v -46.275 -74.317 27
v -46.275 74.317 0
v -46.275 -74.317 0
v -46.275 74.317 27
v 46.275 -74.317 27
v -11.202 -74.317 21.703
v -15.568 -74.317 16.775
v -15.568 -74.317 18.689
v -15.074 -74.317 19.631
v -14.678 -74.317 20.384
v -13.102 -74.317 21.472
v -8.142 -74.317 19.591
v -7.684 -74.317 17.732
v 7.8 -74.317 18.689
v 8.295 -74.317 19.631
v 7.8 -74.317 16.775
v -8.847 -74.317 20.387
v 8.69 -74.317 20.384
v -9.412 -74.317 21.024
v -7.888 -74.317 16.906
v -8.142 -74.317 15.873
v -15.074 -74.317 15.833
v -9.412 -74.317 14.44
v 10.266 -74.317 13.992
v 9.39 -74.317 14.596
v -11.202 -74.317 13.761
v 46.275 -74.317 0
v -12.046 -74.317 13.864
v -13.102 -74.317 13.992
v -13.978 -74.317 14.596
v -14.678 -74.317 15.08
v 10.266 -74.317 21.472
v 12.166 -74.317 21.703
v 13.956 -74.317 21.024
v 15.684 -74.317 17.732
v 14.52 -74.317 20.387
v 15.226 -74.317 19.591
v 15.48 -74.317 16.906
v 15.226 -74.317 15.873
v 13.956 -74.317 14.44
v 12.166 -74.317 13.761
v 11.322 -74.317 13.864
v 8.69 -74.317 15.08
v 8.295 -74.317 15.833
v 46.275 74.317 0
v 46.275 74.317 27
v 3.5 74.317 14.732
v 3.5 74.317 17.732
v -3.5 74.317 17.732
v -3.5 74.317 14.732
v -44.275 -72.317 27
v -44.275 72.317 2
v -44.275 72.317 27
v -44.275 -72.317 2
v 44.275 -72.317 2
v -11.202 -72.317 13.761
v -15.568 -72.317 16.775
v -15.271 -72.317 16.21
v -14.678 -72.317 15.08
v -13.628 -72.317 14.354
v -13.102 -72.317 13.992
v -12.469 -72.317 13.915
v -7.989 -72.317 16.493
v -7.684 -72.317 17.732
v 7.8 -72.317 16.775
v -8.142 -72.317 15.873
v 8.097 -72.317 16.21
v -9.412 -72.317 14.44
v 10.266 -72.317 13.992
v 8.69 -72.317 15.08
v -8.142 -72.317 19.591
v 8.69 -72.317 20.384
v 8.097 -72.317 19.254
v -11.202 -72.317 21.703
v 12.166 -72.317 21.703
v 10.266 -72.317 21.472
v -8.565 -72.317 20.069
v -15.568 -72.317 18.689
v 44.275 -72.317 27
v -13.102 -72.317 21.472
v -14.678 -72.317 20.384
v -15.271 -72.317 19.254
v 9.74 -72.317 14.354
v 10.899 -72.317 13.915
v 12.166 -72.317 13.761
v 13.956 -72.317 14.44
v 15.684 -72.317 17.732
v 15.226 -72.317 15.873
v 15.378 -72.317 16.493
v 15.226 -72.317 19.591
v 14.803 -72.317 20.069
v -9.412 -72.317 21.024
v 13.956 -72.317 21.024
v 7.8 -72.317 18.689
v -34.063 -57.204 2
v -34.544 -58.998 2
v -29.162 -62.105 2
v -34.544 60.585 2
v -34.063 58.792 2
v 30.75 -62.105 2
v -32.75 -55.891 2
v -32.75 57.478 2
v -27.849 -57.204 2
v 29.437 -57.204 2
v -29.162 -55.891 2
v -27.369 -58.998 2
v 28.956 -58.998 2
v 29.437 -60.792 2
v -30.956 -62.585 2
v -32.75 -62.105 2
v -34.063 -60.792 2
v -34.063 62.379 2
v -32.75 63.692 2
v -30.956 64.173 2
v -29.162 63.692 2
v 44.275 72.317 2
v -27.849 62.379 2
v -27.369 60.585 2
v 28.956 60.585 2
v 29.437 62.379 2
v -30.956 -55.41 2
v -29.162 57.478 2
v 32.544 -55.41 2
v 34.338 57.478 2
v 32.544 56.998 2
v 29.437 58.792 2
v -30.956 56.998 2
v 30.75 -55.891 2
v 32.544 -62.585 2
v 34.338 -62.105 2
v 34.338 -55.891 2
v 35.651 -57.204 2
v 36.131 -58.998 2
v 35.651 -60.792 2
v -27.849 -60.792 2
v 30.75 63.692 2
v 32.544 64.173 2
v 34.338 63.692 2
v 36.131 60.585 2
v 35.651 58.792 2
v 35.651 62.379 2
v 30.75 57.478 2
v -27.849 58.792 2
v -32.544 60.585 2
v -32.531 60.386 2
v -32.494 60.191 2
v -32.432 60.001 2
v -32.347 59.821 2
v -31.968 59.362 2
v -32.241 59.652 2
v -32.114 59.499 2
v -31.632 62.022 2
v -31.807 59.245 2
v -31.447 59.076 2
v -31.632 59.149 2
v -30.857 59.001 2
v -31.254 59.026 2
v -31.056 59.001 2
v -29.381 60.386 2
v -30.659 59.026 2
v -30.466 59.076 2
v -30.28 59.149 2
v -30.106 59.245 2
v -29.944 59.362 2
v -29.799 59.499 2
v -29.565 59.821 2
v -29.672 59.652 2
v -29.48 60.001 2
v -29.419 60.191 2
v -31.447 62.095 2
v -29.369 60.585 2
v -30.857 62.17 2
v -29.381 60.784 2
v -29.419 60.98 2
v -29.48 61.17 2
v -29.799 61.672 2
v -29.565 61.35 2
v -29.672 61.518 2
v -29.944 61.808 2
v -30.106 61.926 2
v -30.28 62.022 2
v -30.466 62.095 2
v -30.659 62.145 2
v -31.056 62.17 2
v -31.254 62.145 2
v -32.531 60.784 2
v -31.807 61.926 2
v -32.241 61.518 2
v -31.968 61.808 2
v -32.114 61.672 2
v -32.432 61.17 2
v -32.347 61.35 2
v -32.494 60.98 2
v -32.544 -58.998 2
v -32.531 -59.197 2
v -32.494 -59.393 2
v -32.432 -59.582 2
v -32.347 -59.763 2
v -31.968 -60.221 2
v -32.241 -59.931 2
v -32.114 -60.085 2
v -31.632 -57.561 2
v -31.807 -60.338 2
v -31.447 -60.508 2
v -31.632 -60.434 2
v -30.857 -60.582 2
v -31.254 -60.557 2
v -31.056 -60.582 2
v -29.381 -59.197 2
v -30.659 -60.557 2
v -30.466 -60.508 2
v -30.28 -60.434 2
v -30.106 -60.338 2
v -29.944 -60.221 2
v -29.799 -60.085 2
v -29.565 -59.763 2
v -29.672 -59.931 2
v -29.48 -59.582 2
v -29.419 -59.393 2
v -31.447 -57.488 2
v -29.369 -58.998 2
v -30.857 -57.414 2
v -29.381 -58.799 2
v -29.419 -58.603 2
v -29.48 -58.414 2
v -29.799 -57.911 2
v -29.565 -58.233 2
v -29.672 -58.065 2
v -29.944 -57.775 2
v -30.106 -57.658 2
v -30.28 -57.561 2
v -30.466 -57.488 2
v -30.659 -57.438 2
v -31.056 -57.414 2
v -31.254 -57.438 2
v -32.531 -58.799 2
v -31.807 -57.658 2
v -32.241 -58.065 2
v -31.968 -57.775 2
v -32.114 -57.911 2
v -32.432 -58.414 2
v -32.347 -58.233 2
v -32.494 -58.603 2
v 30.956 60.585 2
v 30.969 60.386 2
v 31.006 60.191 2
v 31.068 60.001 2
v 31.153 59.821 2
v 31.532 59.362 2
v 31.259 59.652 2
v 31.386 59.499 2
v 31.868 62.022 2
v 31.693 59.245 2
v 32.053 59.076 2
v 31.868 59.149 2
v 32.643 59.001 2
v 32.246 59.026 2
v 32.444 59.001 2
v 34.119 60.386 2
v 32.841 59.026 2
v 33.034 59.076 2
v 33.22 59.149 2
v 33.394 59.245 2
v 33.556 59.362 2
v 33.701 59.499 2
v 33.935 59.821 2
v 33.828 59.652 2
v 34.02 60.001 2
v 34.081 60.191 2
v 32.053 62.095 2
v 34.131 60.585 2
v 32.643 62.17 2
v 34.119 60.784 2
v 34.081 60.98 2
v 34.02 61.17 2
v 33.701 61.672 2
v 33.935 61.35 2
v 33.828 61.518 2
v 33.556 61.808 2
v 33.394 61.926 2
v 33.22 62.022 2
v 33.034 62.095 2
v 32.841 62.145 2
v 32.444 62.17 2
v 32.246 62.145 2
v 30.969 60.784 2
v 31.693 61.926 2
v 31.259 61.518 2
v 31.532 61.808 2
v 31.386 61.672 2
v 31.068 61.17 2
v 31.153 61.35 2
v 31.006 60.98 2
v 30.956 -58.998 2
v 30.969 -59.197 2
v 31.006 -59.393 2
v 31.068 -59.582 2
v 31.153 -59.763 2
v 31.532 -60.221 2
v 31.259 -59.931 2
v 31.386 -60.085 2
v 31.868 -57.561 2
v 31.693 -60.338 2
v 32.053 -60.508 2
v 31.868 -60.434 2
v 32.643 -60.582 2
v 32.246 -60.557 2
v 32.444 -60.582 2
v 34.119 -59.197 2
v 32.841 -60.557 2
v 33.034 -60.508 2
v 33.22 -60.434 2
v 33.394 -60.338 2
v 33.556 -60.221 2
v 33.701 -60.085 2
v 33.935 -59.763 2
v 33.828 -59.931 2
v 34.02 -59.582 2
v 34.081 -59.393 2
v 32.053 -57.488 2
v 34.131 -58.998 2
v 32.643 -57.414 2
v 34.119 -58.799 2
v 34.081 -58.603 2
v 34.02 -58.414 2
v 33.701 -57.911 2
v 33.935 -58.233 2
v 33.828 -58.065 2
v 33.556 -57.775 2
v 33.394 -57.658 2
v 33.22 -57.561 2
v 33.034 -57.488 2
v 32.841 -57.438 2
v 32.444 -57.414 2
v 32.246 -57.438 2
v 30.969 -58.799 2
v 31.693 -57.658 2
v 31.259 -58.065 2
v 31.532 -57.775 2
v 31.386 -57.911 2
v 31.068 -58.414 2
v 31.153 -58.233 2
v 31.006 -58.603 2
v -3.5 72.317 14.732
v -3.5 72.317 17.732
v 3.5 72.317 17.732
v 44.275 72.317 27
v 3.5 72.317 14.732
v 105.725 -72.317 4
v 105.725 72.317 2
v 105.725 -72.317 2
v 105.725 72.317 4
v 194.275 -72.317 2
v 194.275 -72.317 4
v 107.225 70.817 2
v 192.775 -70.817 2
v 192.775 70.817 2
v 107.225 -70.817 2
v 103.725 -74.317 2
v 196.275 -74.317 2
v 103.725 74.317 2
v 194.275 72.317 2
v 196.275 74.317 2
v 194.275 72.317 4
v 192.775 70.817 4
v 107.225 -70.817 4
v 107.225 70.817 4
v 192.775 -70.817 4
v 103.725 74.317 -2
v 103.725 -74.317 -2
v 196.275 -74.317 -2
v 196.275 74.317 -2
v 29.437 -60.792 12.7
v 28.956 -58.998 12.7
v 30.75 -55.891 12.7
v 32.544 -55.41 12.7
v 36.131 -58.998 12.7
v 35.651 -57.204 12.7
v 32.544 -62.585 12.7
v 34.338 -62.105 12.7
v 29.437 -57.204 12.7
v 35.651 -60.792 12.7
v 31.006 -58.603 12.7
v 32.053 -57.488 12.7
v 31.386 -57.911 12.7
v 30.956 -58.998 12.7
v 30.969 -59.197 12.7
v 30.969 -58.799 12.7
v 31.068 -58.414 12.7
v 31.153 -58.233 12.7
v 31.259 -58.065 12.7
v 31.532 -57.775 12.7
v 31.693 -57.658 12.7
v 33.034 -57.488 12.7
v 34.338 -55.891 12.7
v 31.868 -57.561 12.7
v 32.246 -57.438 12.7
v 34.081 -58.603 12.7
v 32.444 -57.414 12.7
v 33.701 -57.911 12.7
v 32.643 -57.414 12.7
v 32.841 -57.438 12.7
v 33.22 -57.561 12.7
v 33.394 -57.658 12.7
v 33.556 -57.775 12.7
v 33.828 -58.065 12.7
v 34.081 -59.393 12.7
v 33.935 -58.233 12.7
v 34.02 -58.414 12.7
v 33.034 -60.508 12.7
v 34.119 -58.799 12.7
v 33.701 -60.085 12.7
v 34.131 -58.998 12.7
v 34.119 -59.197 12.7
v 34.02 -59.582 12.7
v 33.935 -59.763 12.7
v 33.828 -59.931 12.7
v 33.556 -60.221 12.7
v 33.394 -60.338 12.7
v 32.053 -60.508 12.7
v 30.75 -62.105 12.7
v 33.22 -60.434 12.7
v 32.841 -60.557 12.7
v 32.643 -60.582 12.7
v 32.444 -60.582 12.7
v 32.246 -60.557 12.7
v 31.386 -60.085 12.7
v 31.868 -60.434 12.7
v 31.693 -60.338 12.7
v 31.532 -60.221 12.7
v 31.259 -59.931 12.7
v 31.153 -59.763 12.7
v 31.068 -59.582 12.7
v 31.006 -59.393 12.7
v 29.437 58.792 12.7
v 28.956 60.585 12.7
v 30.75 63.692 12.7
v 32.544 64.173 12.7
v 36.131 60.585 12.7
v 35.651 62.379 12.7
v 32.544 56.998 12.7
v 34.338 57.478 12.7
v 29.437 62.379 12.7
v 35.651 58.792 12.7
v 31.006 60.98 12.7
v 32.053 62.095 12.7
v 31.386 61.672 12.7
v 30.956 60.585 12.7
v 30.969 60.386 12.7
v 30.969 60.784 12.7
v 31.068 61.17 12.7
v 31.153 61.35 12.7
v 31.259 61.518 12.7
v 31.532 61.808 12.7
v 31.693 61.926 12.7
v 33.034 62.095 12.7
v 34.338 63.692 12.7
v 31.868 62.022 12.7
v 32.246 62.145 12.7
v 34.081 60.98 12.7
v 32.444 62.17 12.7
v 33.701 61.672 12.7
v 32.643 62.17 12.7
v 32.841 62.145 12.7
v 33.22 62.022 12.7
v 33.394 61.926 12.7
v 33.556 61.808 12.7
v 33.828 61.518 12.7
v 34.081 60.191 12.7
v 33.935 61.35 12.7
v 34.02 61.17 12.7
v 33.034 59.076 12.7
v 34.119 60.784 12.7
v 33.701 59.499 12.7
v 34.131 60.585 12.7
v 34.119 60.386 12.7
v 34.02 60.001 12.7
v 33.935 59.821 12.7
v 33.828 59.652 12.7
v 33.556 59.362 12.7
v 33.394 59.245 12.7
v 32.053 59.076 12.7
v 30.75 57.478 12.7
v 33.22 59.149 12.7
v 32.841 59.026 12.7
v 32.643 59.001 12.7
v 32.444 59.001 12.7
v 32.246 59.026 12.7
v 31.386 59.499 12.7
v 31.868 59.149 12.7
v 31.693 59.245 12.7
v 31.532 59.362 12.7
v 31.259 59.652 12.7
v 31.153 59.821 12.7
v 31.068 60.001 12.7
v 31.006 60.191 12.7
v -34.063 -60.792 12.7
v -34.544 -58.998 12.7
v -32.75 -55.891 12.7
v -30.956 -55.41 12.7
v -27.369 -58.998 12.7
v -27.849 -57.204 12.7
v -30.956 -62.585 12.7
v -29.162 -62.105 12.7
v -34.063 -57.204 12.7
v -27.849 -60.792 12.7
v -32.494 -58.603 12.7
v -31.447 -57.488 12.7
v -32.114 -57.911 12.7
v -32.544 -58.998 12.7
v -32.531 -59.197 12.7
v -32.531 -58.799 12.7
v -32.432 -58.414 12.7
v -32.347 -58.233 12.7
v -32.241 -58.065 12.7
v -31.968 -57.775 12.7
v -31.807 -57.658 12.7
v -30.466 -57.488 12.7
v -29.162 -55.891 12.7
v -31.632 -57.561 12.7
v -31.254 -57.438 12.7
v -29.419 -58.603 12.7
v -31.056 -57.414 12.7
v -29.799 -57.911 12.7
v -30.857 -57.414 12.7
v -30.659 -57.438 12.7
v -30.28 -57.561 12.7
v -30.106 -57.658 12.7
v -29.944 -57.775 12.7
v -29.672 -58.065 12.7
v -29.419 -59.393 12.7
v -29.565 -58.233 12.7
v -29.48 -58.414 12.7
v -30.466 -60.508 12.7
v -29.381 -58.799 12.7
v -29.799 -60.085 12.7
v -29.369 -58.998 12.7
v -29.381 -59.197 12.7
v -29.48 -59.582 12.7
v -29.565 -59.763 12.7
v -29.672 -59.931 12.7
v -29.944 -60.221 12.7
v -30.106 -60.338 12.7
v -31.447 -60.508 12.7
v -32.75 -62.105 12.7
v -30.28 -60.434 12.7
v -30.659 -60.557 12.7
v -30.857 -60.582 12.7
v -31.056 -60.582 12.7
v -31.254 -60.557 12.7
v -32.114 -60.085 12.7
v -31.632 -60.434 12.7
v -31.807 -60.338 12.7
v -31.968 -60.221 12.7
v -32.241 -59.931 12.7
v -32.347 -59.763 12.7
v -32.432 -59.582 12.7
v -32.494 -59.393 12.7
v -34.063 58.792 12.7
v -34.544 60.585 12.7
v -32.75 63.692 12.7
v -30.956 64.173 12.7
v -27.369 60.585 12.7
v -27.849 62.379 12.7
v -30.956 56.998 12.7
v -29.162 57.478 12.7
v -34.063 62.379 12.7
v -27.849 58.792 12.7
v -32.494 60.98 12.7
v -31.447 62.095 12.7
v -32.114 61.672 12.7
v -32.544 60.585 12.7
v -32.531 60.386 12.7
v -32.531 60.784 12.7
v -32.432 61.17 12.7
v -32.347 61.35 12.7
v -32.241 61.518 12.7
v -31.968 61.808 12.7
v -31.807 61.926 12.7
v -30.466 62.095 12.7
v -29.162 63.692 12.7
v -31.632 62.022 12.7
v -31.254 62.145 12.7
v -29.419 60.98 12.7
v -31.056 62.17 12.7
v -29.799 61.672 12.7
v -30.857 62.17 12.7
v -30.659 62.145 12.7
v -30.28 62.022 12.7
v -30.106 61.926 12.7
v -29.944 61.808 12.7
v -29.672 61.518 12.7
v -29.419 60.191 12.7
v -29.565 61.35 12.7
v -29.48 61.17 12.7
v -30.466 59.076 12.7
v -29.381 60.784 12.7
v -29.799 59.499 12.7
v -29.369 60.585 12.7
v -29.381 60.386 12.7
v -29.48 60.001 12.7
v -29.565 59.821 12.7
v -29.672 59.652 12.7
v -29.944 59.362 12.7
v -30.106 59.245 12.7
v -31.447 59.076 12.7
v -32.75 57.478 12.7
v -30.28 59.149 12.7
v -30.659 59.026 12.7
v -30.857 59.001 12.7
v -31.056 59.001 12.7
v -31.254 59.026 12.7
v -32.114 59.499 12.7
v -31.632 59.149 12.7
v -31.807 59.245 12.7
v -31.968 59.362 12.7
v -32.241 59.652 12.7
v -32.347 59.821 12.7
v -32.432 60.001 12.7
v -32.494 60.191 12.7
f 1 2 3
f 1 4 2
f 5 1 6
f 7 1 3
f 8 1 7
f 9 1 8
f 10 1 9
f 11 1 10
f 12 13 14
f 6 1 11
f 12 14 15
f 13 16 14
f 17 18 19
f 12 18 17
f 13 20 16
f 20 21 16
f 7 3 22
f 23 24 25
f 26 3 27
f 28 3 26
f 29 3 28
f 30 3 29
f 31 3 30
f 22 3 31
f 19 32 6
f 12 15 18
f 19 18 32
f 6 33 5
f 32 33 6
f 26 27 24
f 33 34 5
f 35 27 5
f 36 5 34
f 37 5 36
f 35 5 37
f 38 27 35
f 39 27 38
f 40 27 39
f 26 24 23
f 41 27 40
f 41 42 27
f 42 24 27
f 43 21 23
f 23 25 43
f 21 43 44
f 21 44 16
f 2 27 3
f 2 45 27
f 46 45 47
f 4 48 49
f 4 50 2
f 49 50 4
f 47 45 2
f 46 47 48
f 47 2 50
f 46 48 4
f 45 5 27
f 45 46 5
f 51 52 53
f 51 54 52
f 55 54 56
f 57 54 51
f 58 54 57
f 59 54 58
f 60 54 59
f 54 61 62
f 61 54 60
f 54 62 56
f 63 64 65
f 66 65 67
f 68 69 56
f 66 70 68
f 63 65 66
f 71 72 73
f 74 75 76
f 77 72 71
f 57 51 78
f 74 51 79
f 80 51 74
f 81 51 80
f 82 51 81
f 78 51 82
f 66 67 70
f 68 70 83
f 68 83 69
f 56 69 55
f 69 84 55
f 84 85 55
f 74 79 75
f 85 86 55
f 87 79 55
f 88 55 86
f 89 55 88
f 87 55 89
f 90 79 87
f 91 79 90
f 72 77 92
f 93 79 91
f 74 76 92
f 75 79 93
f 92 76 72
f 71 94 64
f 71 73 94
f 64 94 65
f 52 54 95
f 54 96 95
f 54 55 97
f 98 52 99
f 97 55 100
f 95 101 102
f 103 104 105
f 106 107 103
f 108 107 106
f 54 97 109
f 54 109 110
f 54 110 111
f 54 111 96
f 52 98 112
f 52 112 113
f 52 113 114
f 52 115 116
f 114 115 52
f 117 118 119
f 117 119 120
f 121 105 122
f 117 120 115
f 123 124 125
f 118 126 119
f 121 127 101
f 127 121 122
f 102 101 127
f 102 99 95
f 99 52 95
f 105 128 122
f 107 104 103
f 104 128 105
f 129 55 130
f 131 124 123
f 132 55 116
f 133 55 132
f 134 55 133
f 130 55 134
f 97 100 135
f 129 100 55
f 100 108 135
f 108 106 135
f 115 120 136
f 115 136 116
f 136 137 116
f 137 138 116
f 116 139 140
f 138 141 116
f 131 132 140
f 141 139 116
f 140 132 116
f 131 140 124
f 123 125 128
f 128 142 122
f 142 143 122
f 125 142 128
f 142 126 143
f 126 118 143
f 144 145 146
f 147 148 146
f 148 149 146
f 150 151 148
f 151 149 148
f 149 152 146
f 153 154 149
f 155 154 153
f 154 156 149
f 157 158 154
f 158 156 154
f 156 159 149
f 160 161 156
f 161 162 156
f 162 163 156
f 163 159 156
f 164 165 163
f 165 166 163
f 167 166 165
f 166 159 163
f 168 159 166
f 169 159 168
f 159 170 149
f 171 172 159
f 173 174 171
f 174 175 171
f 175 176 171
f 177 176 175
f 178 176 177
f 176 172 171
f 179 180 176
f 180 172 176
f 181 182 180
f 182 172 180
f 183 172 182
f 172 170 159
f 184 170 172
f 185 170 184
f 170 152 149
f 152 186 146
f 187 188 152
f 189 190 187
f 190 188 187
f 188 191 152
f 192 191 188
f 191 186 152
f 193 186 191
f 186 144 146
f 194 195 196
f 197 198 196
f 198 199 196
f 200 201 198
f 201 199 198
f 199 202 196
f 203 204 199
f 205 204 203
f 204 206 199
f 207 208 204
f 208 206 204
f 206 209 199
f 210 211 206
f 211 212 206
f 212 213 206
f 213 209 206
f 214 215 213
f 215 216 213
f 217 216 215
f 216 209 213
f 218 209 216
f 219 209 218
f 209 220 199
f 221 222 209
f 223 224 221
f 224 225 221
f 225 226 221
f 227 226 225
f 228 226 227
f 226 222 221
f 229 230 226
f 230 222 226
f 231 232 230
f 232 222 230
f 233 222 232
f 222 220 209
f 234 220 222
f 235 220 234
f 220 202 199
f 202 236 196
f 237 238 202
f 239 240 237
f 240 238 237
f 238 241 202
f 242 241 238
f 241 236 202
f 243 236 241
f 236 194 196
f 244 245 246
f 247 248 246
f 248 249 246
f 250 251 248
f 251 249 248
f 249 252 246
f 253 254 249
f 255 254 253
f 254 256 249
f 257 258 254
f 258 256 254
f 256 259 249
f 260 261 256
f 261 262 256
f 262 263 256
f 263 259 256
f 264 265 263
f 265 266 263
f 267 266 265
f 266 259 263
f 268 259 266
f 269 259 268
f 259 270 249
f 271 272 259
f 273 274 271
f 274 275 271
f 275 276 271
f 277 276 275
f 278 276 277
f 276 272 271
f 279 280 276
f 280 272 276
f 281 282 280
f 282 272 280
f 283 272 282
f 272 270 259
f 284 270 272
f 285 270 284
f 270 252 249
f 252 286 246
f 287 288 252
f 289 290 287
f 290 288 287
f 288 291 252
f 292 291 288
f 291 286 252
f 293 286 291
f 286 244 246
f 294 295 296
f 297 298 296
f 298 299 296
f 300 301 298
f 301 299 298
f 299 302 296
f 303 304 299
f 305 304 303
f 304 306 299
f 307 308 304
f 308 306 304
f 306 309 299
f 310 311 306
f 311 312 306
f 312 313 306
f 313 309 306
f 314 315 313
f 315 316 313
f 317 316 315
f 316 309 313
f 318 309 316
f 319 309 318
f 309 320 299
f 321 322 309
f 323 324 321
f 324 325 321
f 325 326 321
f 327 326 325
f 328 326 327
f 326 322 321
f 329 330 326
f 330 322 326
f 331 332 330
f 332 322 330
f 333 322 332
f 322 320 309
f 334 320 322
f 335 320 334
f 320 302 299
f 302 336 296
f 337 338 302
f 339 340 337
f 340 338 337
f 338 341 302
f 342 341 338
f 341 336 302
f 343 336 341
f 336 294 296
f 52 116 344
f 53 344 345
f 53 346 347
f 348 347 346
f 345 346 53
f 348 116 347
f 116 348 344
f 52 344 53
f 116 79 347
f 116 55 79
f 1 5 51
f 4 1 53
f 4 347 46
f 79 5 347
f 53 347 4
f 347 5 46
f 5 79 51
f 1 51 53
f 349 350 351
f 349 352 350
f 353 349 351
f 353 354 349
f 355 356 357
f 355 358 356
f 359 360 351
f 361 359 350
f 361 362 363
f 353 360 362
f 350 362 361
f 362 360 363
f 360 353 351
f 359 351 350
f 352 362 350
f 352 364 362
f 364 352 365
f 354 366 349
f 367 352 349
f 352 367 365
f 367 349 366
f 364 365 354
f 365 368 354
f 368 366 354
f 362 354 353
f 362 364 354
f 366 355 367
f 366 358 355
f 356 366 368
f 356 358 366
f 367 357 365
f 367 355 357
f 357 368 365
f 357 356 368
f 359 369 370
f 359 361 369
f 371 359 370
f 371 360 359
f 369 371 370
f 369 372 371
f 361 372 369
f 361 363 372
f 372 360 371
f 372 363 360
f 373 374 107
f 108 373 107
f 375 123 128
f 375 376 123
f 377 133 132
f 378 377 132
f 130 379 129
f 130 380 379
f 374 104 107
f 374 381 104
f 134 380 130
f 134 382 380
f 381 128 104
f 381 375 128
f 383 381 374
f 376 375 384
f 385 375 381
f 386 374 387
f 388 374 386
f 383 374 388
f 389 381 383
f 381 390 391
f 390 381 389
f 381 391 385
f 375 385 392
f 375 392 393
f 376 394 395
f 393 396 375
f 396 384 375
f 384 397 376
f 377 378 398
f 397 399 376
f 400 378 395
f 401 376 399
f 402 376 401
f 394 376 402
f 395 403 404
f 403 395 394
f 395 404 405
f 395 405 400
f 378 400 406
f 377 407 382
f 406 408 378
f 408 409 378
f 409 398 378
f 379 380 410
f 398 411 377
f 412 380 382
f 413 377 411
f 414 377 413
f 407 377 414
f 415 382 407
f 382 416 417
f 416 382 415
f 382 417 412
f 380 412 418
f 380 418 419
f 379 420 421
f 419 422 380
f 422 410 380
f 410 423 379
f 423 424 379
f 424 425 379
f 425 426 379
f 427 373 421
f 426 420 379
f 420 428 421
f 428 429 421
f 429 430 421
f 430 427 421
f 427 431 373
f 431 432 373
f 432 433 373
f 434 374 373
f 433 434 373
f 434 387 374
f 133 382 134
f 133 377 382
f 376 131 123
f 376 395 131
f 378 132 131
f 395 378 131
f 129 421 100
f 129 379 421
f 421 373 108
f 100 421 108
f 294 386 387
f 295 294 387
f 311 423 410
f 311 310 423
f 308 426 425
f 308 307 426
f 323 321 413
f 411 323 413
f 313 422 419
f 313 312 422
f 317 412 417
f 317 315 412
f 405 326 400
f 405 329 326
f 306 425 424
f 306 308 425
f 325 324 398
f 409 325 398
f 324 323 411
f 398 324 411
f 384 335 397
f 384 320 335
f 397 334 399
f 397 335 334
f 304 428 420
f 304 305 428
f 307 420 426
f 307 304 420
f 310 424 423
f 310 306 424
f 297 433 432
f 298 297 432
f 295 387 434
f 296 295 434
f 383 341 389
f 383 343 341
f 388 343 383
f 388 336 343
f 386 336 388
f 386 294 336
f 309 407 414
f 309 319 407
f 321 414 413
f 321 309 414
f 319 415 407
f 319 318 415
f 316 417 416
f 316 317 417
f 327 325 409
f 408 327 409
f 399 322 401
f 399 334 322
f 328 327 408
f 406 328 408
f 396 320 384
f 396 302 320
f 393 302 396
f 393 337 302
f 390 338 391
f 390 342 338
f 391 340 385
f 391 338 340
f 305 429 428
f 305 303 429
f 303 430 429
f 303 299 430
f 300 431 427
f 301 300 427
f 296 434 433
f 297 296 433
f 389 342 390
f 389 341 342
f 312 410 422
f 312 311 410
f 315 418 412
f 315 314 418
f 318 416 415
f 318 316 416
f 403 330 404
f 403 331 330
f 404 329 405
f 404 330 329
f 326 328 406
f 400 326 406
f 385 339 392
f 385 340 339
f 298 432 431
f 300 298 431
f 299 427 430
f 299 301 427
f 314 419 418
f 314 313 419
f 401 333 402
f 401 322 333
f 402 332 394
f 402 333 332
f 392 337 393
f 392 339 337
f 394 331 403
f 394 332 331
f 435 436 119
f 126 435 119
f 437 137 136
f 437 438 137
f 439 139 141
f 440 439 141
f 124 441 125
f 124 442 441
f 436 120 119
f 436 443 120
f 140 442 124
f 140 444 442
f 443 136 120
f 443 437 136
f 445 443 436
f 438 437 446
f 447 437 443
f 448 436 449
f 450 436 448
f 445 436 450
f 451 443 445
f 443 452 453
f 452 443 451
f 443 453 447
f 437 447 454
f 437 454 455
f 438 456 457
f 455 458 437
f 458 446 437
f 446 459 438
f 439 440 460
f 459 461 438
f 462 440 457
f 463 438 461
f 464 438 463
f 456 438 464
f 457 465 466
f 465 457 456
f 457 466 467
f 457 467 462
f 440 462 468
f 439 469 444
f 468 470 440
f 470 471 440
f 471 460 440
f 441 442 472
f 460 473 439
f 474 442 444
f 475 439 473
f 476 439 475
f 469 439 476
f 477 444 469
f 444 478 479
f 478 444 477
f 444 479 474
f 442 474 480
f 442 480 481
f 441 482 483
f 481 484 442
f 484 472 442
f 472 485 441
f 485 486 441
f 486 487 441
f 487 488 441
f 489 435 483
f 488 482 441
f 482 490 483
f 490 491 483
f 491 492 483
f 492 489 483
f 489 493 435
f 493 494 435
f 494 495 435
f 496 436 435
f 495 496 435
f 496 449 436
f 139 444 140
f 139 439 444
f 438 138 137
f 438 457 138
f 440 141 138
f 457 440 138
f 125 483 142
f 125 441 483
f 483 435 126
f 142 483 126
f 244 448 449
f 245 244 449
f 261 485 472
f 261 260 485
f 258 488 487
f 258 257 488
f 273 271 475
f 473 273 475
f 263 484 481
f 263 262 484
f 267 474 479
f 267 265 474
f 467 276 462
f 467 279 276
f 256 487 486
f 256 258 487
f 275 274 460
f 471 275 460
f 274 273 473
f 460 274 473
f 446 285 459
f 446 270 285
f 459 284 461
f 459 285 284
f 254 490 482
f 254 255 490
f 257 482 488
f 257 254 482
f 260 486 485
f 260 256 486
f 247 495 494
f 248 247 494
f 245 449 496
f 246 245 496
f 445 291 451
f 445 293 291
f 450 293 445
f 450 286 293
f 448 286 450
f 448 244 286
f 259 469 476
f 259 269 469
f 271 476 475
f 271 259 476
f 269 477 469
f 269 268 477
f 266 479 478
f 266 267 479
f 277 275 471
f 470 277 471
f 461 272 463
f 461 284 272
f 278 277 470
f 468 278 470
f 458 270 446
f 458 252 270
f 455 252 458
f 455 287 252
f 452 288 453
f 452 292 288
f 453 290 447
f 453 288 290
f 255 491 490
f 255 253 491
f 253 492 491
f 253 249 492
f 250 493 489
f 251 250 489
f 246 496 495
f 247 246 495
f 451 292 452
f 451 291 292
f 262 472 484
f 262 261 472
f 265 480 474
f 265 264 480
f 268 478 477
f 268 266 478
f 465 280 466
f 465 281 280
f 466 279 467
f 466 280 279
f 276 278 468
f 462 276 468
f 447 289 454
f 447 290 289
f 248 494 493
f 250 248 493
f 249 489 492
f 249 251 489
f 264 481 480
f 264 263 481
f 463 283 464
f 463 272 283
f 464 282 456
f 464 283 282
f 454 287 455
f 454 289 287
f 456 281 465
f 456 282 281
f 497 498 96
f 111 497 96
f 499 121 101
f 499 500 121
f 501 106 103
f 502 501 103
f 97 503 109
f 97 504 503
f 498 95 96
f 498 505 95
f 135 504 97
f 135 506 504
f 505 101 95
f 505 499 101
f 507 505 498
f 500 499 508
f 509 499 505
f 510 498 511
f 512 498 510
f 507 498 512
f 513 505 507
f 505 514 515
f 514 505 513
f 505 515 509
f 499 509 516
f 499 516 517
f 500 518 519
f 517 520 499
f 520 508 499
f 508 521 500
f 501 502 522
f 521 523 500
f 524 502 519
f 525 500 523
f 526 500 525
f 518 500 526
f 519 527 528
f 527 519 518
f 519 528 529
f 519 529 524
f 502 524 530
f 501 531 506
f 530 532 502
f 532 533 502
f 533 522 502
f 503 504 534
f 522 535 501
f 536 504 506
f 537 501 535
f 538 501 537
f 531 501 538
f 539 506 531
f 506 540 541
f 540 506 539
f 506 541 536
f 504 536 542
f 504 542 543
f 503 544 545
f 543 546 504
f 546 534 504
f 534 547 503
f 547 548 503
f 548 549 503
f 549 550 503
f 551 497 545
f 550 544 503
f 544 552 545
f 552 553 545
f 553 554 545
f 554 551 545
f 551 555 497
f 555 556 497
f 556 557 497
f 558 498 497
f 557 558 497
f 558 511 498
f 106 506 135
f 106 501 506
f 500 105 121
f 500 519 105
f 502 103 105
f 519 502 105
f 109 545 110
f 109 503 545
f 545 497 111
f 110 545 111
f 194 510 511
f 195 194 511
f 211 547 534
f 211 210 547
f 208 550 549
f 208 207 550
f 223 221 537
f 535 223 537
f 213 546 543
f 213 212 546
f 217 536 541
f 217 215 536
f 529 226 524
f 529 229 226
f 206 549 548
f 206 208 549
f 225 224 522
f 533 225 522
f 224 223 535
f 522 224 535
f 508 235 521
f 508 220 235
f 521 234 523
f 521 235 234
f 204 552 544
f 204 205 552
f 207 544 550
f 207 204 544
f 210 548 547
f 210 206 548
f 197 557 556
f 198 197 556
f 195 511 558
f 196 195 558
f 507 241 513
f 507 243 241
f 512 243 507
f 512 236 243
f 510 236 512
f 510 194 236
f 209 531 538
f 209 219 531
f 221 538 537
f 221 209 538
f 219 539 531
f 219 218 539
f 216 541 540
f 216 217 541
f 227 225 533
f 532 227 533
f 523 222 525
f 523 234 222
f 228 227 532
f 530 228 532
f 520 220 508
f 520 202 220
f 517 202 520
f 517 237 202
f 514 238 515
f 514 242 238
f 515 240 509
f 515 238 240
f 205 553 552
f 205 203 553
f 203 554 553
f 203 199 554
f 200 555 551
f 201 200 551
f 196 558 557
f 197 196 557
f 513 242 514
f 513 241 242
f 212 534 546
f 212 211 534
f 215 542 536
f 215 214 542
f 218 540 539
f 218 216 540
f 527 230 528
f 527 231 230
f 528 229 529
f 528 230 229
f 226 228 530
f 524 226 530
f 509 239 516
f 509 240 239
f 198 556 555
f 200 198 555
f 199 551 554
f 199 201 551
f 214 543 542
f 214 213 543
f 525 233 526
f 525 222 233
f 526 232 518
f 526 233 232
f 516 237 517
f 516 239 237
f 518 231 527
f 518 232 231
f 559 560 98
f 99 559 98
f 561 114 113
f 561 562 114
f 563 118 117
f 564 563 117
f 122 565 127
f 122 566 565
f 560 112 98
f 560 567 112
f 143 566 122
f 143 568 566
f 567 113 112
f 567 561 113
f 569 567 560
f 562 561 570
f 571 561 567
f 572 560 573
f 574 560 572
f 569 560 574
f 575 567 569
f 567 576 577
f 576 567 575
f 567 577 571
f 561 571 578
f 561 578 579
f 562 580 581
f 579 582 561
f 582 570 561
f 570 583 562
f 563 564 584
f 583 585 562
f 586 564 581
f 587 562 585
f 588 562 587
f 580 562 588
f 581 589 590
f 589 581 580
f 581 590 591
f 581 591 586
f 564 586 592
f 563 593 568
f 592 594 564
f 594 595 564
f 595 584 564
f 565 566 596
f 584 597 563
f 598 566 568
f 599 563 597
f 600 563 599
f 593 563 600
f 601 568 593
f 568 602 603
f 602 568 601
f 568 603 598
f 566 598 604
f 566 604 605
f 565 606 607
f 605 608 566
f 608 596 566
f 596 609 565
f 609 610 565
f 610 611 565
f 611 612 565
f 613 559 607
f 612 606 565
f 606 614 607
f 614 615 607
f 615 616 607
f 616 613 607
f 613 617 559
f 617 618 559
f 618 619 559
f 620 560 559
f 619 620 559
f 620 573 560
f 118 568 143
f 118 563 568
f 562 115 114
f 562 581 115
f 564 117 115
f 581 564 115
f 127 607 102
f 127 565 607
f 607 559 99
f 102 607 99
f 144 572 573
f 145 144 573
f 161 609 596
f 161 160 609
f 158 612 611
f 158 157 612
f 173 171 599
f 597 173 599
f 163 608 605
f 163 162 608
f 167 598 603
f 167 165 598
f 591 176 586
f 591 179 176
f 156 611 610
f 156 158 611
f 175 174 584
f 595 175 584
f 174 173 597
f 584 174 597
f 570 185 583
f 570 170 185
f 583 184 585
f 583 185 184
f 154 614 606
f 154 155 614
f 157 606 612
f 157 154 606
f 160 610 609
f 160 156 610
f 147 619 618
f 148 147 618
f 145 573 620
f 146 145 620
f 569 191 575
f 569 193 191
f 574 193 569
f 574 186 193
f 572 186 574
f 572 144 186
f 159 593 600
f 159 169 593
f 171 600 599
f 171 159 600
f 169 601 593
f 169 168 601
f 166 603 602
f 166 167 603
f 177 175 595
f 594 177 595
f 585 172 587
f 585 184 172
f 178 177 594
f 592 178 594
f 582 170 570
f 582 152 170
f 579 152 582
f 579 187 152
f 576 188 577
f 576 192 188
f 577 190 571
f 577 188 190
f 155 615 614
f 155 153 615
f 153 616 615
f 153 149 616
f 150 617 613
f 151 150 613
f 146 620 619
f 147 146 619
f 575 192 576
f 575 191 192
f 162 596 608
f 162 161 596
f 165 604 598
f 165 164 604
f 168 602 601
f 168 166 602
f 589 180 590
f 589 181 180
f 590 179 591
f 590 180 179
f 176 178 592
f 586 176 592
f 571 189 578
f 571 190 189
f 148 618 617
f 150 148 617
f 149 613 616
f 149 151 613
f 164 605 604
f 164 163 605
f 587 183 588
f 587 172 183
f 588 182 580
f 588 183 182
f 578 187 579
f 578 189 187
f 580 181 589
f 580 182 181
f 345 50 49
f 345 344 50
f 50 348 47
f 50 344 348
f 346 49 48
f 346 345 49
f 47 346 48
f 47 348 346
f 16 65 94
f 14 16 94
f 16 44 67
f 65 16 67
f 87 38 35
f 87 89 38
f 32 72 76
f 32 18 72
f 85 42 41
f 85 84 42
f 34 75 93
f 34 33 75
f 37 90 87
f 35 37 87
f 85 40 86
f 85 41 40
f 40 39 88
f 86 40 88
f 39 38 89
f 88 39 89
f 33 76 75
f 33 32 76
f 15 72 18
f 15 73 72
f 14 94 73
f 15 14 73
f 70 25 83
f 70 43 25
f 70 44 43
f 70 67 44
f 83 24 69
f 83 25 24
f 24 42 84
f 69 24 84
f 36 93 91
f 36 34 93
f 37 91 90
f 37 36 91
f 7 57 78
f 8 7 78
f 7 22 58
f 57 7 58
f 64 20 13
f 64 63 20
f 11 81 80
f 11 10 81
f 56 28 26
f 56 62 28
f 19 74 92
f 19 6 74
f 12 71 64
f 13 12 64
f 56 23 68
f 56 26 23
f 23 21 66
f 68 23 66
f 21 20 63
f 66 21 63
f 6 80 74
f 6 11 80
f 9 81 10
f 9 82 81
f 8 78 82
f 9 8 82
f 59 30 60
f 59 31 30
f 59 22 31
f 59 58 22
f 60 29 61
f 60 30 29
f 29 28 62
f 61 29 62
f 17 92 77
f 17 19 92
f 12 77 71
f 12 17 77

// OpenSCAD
board_w=3*25.4;
board_l=5.208*25.4;
hole_corner=.25*25.4;
mounthole=(.125 * 25.4 / 2);
standoff_height=.5*25.4;
board_height=.08*25.4;
connector_height = standoff_height + board_height;
module box(board_w, board_l, bottom=false) {
  traup = (bottom == false ? -(30+6)/2 : (30+6)/2);
  translate([0,0,(30+6)/2])
    difference() {
      difference() {
        cube([board_w+hole_corner+10,board_l+hole_corner+10,30+6], center=true);
        cube([board_w+hole_corner+6,board_l+hole_corner+6,30+2], center=true);
      }
      color("red")translate([0,0,traup])cube([board_w+hole_corner+10, board_l+hole_corner+10, (30+6)/2], center=true);
    }
  // standoffs
  for (i = [-1,1]) {
    for (j = [1,-1]) {
      color("blue") translate([i*-1*(board_w/2) + i*hole_corner, j*-1*(board_l/2)+j*hole_corner, 0])
        difference() {
          translate([(mounthole)/2,(mounthole)/2,0]) cylinder(r=mounthole+2, h=standoff_height);
          translate([(mounthole)/2,(mounthole)/2,0])
            cylinder(r=mounthole, h=standoff_height,$fn=50);
        }
    }
  }
}
module boxtop(board_w, board_l, bottom=false) {
  cube([board_w+hole_corner+10,board_l+hole_corner+10,4], center=true);
  translate([0,0,+3])
  difference() {
    cube([board_w+hole_corner+6,board_l+hole_corner+6,2], center=true);
    cube([board_w+hole_corner+3,board_l+hole_corner+3,2], center=true);
  }

}
module microusb() {
  translate([0,0,3/2])cube([7,9,3], center=true);
}
module sma(w=9) {
  rotate([90,0,0])translate([0,3,0])cylinder(r=4,h=w);
}
difference() {
  box(board_w,board_l, true);
  color("blue")translate([0,(hole_corner+10+board_l)/2,connector_height]) microusb();
  color("blue")translate([(board_w/2) - (1.04*25.4),-(hole_corner+board_l)/2,connector_height]) sma();
  color("blue")translate([-(board_w/2) + (1.04*25.4),-(hole_corner+board_l)/2,connector_height]) sma();
}

module board() {
// placeholder board
difference() {
  translate([0,0,standoff_height+1.5])cube([board_w,board_l,board_height], center=true);
  for (i = [-1,1]) {
    for (j = [1,-1]) {
      translate([i*-1*(board_w/2) + i*hole_corner, j*-1*(board_l/2)+j*hole_corner, 0])
        translate([mounthole/2,mounthole*2,0])cylinder(r=mounthole, h=40,$fn=40);
    }
  }

}

}

translate([150,0,0]) boxtop(board_w,board_l);
